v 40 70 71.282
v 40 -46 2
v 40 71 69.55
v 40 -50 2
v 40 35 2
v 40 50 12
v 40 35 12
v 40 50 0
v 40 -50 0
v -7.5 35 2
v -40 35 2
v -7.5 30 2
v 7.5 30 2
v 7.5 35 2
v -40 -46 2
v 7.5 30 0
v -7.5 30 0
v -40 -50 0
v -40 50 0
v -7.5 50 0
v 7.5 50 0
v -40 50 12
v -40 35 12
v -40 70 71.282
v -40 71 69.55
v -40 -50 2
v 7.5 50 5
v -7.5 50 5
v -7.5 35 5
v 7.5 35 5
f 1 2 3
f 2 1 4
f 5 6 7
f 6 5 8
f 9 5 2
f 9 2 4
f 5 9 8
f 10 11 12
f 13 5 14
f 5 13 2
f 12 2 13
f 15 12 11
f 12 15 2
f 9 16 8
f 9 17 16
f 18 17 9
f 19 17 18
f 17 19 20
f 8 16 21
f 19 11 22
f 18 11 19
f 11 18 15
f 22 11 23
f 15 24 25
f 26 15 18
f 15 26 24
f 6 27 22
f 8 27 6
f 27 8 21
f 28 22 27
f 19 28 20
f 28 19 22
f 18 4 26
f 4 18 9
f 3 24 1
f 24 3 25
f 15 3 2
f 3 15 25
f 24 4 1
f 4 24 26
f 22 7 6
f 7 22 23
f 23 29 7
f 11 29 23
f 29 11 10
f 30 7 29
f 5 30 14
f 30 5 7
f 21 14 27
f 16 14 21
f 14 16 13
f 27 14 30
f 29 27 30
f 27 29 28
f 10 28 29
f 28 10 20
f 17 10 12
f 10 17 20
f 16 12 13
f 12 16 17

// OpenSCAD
// Dimensiones del soporte
wall_thickness = 2; // Grosor mínimo de la pared
base_width = 80;    // Ancho de la base
base_depth = 100;   // Profundidad de la base
support_height = 120; // Altura vertical del soporte trasero desde la base
angle = 60;         // Ángulo de inclinación del soporte trasero respecto a la base (grados)
lip_height = 10;    // Altura del labio frontal
lip_depth = 15;     // Profundidad del labio frontal

// Dimensiones de la ranura para cable/teléfono
slot_width = 15;    // Ancho de la ranura
slot_depth = lip_depth + 5; // Profundidad de la ranura (corta el labio y parte de la base)
slot_height = wall_thickness + 3; // Altura de la ranura para permitir el paso de cables o el borde del teléfono

// Ajustes generales para curvas
$fn = 24;

// Estructura principal del soporte
difference() {
  union() {
    // Base principal del soporte
    // Centrada en X, Y. La parte inferior está en Z=0.
    translate([0, 0, wall_thickness / 2]) {
      cube([base_width, base_depth, wall_thickness], center = true);
    }

    // Placa de soporte trasera inclinada 60 grados
    // El punto de pivote para la rotación es:
    // X=0 (centrado), Y=-base_depth/2 (borde trasero de la base), Z=wall_thickness (parte superior de la base)
    translate([0, -base_depth / 2, wall_thickness]) {
      // Calcula la longitud de la placa a lo largo de la pendiente para lograr la altura vertical deseada
      slanted_length = support_height / sin(angle);
      // Rota alrededor del eje X. Ángulo negativo para inclinar hacia atrás.
      rotate([-angle, 0, 0]) {
        // Posiciona el cubo: centrado en X, su cara "trasera" (a lo largo de Y=0) en el pivote,
        // y su cara "inferior" (a lo largo de Z=0) en el pivote.
        // Dimensiones del cubo: [ancho, grosor, largo]
        translate([0, wall_thickness / 2, slanted_length / 2]) {
          cube([base_width, wall_thickness, slanted_length], center = true);
        }
      }
    }

    // Borde frontal (labio) para sujetar el teléfono
    // Posición: Centrado en X. Su cara trasera en Y = base_depth/2 - lip_depth.
    // Su cara inferior en Z = wall_thickness (encima de la base).
    translate([0, base_depth / 2 - lip_depth / 2, wall_thickness + lip_height / 2]) {
      cube([base_width, lip_depth, lip_height], center = true);
    }
  } // Fin union de las partes principales

  // Ranura para cable de carga o borde del teléfono
  // Posición: Centrada en X. En la parte delantera de la base/labio. Su parte inferior está en Z=0.
  translate([0, base_depth / 2 - slot_depth / 2, slot_height / 2]) {
    cube([slot_width, slot_depth, slot_height], center = true);
  }
} // Fin difference (cuerpo principal menos la ranura)
